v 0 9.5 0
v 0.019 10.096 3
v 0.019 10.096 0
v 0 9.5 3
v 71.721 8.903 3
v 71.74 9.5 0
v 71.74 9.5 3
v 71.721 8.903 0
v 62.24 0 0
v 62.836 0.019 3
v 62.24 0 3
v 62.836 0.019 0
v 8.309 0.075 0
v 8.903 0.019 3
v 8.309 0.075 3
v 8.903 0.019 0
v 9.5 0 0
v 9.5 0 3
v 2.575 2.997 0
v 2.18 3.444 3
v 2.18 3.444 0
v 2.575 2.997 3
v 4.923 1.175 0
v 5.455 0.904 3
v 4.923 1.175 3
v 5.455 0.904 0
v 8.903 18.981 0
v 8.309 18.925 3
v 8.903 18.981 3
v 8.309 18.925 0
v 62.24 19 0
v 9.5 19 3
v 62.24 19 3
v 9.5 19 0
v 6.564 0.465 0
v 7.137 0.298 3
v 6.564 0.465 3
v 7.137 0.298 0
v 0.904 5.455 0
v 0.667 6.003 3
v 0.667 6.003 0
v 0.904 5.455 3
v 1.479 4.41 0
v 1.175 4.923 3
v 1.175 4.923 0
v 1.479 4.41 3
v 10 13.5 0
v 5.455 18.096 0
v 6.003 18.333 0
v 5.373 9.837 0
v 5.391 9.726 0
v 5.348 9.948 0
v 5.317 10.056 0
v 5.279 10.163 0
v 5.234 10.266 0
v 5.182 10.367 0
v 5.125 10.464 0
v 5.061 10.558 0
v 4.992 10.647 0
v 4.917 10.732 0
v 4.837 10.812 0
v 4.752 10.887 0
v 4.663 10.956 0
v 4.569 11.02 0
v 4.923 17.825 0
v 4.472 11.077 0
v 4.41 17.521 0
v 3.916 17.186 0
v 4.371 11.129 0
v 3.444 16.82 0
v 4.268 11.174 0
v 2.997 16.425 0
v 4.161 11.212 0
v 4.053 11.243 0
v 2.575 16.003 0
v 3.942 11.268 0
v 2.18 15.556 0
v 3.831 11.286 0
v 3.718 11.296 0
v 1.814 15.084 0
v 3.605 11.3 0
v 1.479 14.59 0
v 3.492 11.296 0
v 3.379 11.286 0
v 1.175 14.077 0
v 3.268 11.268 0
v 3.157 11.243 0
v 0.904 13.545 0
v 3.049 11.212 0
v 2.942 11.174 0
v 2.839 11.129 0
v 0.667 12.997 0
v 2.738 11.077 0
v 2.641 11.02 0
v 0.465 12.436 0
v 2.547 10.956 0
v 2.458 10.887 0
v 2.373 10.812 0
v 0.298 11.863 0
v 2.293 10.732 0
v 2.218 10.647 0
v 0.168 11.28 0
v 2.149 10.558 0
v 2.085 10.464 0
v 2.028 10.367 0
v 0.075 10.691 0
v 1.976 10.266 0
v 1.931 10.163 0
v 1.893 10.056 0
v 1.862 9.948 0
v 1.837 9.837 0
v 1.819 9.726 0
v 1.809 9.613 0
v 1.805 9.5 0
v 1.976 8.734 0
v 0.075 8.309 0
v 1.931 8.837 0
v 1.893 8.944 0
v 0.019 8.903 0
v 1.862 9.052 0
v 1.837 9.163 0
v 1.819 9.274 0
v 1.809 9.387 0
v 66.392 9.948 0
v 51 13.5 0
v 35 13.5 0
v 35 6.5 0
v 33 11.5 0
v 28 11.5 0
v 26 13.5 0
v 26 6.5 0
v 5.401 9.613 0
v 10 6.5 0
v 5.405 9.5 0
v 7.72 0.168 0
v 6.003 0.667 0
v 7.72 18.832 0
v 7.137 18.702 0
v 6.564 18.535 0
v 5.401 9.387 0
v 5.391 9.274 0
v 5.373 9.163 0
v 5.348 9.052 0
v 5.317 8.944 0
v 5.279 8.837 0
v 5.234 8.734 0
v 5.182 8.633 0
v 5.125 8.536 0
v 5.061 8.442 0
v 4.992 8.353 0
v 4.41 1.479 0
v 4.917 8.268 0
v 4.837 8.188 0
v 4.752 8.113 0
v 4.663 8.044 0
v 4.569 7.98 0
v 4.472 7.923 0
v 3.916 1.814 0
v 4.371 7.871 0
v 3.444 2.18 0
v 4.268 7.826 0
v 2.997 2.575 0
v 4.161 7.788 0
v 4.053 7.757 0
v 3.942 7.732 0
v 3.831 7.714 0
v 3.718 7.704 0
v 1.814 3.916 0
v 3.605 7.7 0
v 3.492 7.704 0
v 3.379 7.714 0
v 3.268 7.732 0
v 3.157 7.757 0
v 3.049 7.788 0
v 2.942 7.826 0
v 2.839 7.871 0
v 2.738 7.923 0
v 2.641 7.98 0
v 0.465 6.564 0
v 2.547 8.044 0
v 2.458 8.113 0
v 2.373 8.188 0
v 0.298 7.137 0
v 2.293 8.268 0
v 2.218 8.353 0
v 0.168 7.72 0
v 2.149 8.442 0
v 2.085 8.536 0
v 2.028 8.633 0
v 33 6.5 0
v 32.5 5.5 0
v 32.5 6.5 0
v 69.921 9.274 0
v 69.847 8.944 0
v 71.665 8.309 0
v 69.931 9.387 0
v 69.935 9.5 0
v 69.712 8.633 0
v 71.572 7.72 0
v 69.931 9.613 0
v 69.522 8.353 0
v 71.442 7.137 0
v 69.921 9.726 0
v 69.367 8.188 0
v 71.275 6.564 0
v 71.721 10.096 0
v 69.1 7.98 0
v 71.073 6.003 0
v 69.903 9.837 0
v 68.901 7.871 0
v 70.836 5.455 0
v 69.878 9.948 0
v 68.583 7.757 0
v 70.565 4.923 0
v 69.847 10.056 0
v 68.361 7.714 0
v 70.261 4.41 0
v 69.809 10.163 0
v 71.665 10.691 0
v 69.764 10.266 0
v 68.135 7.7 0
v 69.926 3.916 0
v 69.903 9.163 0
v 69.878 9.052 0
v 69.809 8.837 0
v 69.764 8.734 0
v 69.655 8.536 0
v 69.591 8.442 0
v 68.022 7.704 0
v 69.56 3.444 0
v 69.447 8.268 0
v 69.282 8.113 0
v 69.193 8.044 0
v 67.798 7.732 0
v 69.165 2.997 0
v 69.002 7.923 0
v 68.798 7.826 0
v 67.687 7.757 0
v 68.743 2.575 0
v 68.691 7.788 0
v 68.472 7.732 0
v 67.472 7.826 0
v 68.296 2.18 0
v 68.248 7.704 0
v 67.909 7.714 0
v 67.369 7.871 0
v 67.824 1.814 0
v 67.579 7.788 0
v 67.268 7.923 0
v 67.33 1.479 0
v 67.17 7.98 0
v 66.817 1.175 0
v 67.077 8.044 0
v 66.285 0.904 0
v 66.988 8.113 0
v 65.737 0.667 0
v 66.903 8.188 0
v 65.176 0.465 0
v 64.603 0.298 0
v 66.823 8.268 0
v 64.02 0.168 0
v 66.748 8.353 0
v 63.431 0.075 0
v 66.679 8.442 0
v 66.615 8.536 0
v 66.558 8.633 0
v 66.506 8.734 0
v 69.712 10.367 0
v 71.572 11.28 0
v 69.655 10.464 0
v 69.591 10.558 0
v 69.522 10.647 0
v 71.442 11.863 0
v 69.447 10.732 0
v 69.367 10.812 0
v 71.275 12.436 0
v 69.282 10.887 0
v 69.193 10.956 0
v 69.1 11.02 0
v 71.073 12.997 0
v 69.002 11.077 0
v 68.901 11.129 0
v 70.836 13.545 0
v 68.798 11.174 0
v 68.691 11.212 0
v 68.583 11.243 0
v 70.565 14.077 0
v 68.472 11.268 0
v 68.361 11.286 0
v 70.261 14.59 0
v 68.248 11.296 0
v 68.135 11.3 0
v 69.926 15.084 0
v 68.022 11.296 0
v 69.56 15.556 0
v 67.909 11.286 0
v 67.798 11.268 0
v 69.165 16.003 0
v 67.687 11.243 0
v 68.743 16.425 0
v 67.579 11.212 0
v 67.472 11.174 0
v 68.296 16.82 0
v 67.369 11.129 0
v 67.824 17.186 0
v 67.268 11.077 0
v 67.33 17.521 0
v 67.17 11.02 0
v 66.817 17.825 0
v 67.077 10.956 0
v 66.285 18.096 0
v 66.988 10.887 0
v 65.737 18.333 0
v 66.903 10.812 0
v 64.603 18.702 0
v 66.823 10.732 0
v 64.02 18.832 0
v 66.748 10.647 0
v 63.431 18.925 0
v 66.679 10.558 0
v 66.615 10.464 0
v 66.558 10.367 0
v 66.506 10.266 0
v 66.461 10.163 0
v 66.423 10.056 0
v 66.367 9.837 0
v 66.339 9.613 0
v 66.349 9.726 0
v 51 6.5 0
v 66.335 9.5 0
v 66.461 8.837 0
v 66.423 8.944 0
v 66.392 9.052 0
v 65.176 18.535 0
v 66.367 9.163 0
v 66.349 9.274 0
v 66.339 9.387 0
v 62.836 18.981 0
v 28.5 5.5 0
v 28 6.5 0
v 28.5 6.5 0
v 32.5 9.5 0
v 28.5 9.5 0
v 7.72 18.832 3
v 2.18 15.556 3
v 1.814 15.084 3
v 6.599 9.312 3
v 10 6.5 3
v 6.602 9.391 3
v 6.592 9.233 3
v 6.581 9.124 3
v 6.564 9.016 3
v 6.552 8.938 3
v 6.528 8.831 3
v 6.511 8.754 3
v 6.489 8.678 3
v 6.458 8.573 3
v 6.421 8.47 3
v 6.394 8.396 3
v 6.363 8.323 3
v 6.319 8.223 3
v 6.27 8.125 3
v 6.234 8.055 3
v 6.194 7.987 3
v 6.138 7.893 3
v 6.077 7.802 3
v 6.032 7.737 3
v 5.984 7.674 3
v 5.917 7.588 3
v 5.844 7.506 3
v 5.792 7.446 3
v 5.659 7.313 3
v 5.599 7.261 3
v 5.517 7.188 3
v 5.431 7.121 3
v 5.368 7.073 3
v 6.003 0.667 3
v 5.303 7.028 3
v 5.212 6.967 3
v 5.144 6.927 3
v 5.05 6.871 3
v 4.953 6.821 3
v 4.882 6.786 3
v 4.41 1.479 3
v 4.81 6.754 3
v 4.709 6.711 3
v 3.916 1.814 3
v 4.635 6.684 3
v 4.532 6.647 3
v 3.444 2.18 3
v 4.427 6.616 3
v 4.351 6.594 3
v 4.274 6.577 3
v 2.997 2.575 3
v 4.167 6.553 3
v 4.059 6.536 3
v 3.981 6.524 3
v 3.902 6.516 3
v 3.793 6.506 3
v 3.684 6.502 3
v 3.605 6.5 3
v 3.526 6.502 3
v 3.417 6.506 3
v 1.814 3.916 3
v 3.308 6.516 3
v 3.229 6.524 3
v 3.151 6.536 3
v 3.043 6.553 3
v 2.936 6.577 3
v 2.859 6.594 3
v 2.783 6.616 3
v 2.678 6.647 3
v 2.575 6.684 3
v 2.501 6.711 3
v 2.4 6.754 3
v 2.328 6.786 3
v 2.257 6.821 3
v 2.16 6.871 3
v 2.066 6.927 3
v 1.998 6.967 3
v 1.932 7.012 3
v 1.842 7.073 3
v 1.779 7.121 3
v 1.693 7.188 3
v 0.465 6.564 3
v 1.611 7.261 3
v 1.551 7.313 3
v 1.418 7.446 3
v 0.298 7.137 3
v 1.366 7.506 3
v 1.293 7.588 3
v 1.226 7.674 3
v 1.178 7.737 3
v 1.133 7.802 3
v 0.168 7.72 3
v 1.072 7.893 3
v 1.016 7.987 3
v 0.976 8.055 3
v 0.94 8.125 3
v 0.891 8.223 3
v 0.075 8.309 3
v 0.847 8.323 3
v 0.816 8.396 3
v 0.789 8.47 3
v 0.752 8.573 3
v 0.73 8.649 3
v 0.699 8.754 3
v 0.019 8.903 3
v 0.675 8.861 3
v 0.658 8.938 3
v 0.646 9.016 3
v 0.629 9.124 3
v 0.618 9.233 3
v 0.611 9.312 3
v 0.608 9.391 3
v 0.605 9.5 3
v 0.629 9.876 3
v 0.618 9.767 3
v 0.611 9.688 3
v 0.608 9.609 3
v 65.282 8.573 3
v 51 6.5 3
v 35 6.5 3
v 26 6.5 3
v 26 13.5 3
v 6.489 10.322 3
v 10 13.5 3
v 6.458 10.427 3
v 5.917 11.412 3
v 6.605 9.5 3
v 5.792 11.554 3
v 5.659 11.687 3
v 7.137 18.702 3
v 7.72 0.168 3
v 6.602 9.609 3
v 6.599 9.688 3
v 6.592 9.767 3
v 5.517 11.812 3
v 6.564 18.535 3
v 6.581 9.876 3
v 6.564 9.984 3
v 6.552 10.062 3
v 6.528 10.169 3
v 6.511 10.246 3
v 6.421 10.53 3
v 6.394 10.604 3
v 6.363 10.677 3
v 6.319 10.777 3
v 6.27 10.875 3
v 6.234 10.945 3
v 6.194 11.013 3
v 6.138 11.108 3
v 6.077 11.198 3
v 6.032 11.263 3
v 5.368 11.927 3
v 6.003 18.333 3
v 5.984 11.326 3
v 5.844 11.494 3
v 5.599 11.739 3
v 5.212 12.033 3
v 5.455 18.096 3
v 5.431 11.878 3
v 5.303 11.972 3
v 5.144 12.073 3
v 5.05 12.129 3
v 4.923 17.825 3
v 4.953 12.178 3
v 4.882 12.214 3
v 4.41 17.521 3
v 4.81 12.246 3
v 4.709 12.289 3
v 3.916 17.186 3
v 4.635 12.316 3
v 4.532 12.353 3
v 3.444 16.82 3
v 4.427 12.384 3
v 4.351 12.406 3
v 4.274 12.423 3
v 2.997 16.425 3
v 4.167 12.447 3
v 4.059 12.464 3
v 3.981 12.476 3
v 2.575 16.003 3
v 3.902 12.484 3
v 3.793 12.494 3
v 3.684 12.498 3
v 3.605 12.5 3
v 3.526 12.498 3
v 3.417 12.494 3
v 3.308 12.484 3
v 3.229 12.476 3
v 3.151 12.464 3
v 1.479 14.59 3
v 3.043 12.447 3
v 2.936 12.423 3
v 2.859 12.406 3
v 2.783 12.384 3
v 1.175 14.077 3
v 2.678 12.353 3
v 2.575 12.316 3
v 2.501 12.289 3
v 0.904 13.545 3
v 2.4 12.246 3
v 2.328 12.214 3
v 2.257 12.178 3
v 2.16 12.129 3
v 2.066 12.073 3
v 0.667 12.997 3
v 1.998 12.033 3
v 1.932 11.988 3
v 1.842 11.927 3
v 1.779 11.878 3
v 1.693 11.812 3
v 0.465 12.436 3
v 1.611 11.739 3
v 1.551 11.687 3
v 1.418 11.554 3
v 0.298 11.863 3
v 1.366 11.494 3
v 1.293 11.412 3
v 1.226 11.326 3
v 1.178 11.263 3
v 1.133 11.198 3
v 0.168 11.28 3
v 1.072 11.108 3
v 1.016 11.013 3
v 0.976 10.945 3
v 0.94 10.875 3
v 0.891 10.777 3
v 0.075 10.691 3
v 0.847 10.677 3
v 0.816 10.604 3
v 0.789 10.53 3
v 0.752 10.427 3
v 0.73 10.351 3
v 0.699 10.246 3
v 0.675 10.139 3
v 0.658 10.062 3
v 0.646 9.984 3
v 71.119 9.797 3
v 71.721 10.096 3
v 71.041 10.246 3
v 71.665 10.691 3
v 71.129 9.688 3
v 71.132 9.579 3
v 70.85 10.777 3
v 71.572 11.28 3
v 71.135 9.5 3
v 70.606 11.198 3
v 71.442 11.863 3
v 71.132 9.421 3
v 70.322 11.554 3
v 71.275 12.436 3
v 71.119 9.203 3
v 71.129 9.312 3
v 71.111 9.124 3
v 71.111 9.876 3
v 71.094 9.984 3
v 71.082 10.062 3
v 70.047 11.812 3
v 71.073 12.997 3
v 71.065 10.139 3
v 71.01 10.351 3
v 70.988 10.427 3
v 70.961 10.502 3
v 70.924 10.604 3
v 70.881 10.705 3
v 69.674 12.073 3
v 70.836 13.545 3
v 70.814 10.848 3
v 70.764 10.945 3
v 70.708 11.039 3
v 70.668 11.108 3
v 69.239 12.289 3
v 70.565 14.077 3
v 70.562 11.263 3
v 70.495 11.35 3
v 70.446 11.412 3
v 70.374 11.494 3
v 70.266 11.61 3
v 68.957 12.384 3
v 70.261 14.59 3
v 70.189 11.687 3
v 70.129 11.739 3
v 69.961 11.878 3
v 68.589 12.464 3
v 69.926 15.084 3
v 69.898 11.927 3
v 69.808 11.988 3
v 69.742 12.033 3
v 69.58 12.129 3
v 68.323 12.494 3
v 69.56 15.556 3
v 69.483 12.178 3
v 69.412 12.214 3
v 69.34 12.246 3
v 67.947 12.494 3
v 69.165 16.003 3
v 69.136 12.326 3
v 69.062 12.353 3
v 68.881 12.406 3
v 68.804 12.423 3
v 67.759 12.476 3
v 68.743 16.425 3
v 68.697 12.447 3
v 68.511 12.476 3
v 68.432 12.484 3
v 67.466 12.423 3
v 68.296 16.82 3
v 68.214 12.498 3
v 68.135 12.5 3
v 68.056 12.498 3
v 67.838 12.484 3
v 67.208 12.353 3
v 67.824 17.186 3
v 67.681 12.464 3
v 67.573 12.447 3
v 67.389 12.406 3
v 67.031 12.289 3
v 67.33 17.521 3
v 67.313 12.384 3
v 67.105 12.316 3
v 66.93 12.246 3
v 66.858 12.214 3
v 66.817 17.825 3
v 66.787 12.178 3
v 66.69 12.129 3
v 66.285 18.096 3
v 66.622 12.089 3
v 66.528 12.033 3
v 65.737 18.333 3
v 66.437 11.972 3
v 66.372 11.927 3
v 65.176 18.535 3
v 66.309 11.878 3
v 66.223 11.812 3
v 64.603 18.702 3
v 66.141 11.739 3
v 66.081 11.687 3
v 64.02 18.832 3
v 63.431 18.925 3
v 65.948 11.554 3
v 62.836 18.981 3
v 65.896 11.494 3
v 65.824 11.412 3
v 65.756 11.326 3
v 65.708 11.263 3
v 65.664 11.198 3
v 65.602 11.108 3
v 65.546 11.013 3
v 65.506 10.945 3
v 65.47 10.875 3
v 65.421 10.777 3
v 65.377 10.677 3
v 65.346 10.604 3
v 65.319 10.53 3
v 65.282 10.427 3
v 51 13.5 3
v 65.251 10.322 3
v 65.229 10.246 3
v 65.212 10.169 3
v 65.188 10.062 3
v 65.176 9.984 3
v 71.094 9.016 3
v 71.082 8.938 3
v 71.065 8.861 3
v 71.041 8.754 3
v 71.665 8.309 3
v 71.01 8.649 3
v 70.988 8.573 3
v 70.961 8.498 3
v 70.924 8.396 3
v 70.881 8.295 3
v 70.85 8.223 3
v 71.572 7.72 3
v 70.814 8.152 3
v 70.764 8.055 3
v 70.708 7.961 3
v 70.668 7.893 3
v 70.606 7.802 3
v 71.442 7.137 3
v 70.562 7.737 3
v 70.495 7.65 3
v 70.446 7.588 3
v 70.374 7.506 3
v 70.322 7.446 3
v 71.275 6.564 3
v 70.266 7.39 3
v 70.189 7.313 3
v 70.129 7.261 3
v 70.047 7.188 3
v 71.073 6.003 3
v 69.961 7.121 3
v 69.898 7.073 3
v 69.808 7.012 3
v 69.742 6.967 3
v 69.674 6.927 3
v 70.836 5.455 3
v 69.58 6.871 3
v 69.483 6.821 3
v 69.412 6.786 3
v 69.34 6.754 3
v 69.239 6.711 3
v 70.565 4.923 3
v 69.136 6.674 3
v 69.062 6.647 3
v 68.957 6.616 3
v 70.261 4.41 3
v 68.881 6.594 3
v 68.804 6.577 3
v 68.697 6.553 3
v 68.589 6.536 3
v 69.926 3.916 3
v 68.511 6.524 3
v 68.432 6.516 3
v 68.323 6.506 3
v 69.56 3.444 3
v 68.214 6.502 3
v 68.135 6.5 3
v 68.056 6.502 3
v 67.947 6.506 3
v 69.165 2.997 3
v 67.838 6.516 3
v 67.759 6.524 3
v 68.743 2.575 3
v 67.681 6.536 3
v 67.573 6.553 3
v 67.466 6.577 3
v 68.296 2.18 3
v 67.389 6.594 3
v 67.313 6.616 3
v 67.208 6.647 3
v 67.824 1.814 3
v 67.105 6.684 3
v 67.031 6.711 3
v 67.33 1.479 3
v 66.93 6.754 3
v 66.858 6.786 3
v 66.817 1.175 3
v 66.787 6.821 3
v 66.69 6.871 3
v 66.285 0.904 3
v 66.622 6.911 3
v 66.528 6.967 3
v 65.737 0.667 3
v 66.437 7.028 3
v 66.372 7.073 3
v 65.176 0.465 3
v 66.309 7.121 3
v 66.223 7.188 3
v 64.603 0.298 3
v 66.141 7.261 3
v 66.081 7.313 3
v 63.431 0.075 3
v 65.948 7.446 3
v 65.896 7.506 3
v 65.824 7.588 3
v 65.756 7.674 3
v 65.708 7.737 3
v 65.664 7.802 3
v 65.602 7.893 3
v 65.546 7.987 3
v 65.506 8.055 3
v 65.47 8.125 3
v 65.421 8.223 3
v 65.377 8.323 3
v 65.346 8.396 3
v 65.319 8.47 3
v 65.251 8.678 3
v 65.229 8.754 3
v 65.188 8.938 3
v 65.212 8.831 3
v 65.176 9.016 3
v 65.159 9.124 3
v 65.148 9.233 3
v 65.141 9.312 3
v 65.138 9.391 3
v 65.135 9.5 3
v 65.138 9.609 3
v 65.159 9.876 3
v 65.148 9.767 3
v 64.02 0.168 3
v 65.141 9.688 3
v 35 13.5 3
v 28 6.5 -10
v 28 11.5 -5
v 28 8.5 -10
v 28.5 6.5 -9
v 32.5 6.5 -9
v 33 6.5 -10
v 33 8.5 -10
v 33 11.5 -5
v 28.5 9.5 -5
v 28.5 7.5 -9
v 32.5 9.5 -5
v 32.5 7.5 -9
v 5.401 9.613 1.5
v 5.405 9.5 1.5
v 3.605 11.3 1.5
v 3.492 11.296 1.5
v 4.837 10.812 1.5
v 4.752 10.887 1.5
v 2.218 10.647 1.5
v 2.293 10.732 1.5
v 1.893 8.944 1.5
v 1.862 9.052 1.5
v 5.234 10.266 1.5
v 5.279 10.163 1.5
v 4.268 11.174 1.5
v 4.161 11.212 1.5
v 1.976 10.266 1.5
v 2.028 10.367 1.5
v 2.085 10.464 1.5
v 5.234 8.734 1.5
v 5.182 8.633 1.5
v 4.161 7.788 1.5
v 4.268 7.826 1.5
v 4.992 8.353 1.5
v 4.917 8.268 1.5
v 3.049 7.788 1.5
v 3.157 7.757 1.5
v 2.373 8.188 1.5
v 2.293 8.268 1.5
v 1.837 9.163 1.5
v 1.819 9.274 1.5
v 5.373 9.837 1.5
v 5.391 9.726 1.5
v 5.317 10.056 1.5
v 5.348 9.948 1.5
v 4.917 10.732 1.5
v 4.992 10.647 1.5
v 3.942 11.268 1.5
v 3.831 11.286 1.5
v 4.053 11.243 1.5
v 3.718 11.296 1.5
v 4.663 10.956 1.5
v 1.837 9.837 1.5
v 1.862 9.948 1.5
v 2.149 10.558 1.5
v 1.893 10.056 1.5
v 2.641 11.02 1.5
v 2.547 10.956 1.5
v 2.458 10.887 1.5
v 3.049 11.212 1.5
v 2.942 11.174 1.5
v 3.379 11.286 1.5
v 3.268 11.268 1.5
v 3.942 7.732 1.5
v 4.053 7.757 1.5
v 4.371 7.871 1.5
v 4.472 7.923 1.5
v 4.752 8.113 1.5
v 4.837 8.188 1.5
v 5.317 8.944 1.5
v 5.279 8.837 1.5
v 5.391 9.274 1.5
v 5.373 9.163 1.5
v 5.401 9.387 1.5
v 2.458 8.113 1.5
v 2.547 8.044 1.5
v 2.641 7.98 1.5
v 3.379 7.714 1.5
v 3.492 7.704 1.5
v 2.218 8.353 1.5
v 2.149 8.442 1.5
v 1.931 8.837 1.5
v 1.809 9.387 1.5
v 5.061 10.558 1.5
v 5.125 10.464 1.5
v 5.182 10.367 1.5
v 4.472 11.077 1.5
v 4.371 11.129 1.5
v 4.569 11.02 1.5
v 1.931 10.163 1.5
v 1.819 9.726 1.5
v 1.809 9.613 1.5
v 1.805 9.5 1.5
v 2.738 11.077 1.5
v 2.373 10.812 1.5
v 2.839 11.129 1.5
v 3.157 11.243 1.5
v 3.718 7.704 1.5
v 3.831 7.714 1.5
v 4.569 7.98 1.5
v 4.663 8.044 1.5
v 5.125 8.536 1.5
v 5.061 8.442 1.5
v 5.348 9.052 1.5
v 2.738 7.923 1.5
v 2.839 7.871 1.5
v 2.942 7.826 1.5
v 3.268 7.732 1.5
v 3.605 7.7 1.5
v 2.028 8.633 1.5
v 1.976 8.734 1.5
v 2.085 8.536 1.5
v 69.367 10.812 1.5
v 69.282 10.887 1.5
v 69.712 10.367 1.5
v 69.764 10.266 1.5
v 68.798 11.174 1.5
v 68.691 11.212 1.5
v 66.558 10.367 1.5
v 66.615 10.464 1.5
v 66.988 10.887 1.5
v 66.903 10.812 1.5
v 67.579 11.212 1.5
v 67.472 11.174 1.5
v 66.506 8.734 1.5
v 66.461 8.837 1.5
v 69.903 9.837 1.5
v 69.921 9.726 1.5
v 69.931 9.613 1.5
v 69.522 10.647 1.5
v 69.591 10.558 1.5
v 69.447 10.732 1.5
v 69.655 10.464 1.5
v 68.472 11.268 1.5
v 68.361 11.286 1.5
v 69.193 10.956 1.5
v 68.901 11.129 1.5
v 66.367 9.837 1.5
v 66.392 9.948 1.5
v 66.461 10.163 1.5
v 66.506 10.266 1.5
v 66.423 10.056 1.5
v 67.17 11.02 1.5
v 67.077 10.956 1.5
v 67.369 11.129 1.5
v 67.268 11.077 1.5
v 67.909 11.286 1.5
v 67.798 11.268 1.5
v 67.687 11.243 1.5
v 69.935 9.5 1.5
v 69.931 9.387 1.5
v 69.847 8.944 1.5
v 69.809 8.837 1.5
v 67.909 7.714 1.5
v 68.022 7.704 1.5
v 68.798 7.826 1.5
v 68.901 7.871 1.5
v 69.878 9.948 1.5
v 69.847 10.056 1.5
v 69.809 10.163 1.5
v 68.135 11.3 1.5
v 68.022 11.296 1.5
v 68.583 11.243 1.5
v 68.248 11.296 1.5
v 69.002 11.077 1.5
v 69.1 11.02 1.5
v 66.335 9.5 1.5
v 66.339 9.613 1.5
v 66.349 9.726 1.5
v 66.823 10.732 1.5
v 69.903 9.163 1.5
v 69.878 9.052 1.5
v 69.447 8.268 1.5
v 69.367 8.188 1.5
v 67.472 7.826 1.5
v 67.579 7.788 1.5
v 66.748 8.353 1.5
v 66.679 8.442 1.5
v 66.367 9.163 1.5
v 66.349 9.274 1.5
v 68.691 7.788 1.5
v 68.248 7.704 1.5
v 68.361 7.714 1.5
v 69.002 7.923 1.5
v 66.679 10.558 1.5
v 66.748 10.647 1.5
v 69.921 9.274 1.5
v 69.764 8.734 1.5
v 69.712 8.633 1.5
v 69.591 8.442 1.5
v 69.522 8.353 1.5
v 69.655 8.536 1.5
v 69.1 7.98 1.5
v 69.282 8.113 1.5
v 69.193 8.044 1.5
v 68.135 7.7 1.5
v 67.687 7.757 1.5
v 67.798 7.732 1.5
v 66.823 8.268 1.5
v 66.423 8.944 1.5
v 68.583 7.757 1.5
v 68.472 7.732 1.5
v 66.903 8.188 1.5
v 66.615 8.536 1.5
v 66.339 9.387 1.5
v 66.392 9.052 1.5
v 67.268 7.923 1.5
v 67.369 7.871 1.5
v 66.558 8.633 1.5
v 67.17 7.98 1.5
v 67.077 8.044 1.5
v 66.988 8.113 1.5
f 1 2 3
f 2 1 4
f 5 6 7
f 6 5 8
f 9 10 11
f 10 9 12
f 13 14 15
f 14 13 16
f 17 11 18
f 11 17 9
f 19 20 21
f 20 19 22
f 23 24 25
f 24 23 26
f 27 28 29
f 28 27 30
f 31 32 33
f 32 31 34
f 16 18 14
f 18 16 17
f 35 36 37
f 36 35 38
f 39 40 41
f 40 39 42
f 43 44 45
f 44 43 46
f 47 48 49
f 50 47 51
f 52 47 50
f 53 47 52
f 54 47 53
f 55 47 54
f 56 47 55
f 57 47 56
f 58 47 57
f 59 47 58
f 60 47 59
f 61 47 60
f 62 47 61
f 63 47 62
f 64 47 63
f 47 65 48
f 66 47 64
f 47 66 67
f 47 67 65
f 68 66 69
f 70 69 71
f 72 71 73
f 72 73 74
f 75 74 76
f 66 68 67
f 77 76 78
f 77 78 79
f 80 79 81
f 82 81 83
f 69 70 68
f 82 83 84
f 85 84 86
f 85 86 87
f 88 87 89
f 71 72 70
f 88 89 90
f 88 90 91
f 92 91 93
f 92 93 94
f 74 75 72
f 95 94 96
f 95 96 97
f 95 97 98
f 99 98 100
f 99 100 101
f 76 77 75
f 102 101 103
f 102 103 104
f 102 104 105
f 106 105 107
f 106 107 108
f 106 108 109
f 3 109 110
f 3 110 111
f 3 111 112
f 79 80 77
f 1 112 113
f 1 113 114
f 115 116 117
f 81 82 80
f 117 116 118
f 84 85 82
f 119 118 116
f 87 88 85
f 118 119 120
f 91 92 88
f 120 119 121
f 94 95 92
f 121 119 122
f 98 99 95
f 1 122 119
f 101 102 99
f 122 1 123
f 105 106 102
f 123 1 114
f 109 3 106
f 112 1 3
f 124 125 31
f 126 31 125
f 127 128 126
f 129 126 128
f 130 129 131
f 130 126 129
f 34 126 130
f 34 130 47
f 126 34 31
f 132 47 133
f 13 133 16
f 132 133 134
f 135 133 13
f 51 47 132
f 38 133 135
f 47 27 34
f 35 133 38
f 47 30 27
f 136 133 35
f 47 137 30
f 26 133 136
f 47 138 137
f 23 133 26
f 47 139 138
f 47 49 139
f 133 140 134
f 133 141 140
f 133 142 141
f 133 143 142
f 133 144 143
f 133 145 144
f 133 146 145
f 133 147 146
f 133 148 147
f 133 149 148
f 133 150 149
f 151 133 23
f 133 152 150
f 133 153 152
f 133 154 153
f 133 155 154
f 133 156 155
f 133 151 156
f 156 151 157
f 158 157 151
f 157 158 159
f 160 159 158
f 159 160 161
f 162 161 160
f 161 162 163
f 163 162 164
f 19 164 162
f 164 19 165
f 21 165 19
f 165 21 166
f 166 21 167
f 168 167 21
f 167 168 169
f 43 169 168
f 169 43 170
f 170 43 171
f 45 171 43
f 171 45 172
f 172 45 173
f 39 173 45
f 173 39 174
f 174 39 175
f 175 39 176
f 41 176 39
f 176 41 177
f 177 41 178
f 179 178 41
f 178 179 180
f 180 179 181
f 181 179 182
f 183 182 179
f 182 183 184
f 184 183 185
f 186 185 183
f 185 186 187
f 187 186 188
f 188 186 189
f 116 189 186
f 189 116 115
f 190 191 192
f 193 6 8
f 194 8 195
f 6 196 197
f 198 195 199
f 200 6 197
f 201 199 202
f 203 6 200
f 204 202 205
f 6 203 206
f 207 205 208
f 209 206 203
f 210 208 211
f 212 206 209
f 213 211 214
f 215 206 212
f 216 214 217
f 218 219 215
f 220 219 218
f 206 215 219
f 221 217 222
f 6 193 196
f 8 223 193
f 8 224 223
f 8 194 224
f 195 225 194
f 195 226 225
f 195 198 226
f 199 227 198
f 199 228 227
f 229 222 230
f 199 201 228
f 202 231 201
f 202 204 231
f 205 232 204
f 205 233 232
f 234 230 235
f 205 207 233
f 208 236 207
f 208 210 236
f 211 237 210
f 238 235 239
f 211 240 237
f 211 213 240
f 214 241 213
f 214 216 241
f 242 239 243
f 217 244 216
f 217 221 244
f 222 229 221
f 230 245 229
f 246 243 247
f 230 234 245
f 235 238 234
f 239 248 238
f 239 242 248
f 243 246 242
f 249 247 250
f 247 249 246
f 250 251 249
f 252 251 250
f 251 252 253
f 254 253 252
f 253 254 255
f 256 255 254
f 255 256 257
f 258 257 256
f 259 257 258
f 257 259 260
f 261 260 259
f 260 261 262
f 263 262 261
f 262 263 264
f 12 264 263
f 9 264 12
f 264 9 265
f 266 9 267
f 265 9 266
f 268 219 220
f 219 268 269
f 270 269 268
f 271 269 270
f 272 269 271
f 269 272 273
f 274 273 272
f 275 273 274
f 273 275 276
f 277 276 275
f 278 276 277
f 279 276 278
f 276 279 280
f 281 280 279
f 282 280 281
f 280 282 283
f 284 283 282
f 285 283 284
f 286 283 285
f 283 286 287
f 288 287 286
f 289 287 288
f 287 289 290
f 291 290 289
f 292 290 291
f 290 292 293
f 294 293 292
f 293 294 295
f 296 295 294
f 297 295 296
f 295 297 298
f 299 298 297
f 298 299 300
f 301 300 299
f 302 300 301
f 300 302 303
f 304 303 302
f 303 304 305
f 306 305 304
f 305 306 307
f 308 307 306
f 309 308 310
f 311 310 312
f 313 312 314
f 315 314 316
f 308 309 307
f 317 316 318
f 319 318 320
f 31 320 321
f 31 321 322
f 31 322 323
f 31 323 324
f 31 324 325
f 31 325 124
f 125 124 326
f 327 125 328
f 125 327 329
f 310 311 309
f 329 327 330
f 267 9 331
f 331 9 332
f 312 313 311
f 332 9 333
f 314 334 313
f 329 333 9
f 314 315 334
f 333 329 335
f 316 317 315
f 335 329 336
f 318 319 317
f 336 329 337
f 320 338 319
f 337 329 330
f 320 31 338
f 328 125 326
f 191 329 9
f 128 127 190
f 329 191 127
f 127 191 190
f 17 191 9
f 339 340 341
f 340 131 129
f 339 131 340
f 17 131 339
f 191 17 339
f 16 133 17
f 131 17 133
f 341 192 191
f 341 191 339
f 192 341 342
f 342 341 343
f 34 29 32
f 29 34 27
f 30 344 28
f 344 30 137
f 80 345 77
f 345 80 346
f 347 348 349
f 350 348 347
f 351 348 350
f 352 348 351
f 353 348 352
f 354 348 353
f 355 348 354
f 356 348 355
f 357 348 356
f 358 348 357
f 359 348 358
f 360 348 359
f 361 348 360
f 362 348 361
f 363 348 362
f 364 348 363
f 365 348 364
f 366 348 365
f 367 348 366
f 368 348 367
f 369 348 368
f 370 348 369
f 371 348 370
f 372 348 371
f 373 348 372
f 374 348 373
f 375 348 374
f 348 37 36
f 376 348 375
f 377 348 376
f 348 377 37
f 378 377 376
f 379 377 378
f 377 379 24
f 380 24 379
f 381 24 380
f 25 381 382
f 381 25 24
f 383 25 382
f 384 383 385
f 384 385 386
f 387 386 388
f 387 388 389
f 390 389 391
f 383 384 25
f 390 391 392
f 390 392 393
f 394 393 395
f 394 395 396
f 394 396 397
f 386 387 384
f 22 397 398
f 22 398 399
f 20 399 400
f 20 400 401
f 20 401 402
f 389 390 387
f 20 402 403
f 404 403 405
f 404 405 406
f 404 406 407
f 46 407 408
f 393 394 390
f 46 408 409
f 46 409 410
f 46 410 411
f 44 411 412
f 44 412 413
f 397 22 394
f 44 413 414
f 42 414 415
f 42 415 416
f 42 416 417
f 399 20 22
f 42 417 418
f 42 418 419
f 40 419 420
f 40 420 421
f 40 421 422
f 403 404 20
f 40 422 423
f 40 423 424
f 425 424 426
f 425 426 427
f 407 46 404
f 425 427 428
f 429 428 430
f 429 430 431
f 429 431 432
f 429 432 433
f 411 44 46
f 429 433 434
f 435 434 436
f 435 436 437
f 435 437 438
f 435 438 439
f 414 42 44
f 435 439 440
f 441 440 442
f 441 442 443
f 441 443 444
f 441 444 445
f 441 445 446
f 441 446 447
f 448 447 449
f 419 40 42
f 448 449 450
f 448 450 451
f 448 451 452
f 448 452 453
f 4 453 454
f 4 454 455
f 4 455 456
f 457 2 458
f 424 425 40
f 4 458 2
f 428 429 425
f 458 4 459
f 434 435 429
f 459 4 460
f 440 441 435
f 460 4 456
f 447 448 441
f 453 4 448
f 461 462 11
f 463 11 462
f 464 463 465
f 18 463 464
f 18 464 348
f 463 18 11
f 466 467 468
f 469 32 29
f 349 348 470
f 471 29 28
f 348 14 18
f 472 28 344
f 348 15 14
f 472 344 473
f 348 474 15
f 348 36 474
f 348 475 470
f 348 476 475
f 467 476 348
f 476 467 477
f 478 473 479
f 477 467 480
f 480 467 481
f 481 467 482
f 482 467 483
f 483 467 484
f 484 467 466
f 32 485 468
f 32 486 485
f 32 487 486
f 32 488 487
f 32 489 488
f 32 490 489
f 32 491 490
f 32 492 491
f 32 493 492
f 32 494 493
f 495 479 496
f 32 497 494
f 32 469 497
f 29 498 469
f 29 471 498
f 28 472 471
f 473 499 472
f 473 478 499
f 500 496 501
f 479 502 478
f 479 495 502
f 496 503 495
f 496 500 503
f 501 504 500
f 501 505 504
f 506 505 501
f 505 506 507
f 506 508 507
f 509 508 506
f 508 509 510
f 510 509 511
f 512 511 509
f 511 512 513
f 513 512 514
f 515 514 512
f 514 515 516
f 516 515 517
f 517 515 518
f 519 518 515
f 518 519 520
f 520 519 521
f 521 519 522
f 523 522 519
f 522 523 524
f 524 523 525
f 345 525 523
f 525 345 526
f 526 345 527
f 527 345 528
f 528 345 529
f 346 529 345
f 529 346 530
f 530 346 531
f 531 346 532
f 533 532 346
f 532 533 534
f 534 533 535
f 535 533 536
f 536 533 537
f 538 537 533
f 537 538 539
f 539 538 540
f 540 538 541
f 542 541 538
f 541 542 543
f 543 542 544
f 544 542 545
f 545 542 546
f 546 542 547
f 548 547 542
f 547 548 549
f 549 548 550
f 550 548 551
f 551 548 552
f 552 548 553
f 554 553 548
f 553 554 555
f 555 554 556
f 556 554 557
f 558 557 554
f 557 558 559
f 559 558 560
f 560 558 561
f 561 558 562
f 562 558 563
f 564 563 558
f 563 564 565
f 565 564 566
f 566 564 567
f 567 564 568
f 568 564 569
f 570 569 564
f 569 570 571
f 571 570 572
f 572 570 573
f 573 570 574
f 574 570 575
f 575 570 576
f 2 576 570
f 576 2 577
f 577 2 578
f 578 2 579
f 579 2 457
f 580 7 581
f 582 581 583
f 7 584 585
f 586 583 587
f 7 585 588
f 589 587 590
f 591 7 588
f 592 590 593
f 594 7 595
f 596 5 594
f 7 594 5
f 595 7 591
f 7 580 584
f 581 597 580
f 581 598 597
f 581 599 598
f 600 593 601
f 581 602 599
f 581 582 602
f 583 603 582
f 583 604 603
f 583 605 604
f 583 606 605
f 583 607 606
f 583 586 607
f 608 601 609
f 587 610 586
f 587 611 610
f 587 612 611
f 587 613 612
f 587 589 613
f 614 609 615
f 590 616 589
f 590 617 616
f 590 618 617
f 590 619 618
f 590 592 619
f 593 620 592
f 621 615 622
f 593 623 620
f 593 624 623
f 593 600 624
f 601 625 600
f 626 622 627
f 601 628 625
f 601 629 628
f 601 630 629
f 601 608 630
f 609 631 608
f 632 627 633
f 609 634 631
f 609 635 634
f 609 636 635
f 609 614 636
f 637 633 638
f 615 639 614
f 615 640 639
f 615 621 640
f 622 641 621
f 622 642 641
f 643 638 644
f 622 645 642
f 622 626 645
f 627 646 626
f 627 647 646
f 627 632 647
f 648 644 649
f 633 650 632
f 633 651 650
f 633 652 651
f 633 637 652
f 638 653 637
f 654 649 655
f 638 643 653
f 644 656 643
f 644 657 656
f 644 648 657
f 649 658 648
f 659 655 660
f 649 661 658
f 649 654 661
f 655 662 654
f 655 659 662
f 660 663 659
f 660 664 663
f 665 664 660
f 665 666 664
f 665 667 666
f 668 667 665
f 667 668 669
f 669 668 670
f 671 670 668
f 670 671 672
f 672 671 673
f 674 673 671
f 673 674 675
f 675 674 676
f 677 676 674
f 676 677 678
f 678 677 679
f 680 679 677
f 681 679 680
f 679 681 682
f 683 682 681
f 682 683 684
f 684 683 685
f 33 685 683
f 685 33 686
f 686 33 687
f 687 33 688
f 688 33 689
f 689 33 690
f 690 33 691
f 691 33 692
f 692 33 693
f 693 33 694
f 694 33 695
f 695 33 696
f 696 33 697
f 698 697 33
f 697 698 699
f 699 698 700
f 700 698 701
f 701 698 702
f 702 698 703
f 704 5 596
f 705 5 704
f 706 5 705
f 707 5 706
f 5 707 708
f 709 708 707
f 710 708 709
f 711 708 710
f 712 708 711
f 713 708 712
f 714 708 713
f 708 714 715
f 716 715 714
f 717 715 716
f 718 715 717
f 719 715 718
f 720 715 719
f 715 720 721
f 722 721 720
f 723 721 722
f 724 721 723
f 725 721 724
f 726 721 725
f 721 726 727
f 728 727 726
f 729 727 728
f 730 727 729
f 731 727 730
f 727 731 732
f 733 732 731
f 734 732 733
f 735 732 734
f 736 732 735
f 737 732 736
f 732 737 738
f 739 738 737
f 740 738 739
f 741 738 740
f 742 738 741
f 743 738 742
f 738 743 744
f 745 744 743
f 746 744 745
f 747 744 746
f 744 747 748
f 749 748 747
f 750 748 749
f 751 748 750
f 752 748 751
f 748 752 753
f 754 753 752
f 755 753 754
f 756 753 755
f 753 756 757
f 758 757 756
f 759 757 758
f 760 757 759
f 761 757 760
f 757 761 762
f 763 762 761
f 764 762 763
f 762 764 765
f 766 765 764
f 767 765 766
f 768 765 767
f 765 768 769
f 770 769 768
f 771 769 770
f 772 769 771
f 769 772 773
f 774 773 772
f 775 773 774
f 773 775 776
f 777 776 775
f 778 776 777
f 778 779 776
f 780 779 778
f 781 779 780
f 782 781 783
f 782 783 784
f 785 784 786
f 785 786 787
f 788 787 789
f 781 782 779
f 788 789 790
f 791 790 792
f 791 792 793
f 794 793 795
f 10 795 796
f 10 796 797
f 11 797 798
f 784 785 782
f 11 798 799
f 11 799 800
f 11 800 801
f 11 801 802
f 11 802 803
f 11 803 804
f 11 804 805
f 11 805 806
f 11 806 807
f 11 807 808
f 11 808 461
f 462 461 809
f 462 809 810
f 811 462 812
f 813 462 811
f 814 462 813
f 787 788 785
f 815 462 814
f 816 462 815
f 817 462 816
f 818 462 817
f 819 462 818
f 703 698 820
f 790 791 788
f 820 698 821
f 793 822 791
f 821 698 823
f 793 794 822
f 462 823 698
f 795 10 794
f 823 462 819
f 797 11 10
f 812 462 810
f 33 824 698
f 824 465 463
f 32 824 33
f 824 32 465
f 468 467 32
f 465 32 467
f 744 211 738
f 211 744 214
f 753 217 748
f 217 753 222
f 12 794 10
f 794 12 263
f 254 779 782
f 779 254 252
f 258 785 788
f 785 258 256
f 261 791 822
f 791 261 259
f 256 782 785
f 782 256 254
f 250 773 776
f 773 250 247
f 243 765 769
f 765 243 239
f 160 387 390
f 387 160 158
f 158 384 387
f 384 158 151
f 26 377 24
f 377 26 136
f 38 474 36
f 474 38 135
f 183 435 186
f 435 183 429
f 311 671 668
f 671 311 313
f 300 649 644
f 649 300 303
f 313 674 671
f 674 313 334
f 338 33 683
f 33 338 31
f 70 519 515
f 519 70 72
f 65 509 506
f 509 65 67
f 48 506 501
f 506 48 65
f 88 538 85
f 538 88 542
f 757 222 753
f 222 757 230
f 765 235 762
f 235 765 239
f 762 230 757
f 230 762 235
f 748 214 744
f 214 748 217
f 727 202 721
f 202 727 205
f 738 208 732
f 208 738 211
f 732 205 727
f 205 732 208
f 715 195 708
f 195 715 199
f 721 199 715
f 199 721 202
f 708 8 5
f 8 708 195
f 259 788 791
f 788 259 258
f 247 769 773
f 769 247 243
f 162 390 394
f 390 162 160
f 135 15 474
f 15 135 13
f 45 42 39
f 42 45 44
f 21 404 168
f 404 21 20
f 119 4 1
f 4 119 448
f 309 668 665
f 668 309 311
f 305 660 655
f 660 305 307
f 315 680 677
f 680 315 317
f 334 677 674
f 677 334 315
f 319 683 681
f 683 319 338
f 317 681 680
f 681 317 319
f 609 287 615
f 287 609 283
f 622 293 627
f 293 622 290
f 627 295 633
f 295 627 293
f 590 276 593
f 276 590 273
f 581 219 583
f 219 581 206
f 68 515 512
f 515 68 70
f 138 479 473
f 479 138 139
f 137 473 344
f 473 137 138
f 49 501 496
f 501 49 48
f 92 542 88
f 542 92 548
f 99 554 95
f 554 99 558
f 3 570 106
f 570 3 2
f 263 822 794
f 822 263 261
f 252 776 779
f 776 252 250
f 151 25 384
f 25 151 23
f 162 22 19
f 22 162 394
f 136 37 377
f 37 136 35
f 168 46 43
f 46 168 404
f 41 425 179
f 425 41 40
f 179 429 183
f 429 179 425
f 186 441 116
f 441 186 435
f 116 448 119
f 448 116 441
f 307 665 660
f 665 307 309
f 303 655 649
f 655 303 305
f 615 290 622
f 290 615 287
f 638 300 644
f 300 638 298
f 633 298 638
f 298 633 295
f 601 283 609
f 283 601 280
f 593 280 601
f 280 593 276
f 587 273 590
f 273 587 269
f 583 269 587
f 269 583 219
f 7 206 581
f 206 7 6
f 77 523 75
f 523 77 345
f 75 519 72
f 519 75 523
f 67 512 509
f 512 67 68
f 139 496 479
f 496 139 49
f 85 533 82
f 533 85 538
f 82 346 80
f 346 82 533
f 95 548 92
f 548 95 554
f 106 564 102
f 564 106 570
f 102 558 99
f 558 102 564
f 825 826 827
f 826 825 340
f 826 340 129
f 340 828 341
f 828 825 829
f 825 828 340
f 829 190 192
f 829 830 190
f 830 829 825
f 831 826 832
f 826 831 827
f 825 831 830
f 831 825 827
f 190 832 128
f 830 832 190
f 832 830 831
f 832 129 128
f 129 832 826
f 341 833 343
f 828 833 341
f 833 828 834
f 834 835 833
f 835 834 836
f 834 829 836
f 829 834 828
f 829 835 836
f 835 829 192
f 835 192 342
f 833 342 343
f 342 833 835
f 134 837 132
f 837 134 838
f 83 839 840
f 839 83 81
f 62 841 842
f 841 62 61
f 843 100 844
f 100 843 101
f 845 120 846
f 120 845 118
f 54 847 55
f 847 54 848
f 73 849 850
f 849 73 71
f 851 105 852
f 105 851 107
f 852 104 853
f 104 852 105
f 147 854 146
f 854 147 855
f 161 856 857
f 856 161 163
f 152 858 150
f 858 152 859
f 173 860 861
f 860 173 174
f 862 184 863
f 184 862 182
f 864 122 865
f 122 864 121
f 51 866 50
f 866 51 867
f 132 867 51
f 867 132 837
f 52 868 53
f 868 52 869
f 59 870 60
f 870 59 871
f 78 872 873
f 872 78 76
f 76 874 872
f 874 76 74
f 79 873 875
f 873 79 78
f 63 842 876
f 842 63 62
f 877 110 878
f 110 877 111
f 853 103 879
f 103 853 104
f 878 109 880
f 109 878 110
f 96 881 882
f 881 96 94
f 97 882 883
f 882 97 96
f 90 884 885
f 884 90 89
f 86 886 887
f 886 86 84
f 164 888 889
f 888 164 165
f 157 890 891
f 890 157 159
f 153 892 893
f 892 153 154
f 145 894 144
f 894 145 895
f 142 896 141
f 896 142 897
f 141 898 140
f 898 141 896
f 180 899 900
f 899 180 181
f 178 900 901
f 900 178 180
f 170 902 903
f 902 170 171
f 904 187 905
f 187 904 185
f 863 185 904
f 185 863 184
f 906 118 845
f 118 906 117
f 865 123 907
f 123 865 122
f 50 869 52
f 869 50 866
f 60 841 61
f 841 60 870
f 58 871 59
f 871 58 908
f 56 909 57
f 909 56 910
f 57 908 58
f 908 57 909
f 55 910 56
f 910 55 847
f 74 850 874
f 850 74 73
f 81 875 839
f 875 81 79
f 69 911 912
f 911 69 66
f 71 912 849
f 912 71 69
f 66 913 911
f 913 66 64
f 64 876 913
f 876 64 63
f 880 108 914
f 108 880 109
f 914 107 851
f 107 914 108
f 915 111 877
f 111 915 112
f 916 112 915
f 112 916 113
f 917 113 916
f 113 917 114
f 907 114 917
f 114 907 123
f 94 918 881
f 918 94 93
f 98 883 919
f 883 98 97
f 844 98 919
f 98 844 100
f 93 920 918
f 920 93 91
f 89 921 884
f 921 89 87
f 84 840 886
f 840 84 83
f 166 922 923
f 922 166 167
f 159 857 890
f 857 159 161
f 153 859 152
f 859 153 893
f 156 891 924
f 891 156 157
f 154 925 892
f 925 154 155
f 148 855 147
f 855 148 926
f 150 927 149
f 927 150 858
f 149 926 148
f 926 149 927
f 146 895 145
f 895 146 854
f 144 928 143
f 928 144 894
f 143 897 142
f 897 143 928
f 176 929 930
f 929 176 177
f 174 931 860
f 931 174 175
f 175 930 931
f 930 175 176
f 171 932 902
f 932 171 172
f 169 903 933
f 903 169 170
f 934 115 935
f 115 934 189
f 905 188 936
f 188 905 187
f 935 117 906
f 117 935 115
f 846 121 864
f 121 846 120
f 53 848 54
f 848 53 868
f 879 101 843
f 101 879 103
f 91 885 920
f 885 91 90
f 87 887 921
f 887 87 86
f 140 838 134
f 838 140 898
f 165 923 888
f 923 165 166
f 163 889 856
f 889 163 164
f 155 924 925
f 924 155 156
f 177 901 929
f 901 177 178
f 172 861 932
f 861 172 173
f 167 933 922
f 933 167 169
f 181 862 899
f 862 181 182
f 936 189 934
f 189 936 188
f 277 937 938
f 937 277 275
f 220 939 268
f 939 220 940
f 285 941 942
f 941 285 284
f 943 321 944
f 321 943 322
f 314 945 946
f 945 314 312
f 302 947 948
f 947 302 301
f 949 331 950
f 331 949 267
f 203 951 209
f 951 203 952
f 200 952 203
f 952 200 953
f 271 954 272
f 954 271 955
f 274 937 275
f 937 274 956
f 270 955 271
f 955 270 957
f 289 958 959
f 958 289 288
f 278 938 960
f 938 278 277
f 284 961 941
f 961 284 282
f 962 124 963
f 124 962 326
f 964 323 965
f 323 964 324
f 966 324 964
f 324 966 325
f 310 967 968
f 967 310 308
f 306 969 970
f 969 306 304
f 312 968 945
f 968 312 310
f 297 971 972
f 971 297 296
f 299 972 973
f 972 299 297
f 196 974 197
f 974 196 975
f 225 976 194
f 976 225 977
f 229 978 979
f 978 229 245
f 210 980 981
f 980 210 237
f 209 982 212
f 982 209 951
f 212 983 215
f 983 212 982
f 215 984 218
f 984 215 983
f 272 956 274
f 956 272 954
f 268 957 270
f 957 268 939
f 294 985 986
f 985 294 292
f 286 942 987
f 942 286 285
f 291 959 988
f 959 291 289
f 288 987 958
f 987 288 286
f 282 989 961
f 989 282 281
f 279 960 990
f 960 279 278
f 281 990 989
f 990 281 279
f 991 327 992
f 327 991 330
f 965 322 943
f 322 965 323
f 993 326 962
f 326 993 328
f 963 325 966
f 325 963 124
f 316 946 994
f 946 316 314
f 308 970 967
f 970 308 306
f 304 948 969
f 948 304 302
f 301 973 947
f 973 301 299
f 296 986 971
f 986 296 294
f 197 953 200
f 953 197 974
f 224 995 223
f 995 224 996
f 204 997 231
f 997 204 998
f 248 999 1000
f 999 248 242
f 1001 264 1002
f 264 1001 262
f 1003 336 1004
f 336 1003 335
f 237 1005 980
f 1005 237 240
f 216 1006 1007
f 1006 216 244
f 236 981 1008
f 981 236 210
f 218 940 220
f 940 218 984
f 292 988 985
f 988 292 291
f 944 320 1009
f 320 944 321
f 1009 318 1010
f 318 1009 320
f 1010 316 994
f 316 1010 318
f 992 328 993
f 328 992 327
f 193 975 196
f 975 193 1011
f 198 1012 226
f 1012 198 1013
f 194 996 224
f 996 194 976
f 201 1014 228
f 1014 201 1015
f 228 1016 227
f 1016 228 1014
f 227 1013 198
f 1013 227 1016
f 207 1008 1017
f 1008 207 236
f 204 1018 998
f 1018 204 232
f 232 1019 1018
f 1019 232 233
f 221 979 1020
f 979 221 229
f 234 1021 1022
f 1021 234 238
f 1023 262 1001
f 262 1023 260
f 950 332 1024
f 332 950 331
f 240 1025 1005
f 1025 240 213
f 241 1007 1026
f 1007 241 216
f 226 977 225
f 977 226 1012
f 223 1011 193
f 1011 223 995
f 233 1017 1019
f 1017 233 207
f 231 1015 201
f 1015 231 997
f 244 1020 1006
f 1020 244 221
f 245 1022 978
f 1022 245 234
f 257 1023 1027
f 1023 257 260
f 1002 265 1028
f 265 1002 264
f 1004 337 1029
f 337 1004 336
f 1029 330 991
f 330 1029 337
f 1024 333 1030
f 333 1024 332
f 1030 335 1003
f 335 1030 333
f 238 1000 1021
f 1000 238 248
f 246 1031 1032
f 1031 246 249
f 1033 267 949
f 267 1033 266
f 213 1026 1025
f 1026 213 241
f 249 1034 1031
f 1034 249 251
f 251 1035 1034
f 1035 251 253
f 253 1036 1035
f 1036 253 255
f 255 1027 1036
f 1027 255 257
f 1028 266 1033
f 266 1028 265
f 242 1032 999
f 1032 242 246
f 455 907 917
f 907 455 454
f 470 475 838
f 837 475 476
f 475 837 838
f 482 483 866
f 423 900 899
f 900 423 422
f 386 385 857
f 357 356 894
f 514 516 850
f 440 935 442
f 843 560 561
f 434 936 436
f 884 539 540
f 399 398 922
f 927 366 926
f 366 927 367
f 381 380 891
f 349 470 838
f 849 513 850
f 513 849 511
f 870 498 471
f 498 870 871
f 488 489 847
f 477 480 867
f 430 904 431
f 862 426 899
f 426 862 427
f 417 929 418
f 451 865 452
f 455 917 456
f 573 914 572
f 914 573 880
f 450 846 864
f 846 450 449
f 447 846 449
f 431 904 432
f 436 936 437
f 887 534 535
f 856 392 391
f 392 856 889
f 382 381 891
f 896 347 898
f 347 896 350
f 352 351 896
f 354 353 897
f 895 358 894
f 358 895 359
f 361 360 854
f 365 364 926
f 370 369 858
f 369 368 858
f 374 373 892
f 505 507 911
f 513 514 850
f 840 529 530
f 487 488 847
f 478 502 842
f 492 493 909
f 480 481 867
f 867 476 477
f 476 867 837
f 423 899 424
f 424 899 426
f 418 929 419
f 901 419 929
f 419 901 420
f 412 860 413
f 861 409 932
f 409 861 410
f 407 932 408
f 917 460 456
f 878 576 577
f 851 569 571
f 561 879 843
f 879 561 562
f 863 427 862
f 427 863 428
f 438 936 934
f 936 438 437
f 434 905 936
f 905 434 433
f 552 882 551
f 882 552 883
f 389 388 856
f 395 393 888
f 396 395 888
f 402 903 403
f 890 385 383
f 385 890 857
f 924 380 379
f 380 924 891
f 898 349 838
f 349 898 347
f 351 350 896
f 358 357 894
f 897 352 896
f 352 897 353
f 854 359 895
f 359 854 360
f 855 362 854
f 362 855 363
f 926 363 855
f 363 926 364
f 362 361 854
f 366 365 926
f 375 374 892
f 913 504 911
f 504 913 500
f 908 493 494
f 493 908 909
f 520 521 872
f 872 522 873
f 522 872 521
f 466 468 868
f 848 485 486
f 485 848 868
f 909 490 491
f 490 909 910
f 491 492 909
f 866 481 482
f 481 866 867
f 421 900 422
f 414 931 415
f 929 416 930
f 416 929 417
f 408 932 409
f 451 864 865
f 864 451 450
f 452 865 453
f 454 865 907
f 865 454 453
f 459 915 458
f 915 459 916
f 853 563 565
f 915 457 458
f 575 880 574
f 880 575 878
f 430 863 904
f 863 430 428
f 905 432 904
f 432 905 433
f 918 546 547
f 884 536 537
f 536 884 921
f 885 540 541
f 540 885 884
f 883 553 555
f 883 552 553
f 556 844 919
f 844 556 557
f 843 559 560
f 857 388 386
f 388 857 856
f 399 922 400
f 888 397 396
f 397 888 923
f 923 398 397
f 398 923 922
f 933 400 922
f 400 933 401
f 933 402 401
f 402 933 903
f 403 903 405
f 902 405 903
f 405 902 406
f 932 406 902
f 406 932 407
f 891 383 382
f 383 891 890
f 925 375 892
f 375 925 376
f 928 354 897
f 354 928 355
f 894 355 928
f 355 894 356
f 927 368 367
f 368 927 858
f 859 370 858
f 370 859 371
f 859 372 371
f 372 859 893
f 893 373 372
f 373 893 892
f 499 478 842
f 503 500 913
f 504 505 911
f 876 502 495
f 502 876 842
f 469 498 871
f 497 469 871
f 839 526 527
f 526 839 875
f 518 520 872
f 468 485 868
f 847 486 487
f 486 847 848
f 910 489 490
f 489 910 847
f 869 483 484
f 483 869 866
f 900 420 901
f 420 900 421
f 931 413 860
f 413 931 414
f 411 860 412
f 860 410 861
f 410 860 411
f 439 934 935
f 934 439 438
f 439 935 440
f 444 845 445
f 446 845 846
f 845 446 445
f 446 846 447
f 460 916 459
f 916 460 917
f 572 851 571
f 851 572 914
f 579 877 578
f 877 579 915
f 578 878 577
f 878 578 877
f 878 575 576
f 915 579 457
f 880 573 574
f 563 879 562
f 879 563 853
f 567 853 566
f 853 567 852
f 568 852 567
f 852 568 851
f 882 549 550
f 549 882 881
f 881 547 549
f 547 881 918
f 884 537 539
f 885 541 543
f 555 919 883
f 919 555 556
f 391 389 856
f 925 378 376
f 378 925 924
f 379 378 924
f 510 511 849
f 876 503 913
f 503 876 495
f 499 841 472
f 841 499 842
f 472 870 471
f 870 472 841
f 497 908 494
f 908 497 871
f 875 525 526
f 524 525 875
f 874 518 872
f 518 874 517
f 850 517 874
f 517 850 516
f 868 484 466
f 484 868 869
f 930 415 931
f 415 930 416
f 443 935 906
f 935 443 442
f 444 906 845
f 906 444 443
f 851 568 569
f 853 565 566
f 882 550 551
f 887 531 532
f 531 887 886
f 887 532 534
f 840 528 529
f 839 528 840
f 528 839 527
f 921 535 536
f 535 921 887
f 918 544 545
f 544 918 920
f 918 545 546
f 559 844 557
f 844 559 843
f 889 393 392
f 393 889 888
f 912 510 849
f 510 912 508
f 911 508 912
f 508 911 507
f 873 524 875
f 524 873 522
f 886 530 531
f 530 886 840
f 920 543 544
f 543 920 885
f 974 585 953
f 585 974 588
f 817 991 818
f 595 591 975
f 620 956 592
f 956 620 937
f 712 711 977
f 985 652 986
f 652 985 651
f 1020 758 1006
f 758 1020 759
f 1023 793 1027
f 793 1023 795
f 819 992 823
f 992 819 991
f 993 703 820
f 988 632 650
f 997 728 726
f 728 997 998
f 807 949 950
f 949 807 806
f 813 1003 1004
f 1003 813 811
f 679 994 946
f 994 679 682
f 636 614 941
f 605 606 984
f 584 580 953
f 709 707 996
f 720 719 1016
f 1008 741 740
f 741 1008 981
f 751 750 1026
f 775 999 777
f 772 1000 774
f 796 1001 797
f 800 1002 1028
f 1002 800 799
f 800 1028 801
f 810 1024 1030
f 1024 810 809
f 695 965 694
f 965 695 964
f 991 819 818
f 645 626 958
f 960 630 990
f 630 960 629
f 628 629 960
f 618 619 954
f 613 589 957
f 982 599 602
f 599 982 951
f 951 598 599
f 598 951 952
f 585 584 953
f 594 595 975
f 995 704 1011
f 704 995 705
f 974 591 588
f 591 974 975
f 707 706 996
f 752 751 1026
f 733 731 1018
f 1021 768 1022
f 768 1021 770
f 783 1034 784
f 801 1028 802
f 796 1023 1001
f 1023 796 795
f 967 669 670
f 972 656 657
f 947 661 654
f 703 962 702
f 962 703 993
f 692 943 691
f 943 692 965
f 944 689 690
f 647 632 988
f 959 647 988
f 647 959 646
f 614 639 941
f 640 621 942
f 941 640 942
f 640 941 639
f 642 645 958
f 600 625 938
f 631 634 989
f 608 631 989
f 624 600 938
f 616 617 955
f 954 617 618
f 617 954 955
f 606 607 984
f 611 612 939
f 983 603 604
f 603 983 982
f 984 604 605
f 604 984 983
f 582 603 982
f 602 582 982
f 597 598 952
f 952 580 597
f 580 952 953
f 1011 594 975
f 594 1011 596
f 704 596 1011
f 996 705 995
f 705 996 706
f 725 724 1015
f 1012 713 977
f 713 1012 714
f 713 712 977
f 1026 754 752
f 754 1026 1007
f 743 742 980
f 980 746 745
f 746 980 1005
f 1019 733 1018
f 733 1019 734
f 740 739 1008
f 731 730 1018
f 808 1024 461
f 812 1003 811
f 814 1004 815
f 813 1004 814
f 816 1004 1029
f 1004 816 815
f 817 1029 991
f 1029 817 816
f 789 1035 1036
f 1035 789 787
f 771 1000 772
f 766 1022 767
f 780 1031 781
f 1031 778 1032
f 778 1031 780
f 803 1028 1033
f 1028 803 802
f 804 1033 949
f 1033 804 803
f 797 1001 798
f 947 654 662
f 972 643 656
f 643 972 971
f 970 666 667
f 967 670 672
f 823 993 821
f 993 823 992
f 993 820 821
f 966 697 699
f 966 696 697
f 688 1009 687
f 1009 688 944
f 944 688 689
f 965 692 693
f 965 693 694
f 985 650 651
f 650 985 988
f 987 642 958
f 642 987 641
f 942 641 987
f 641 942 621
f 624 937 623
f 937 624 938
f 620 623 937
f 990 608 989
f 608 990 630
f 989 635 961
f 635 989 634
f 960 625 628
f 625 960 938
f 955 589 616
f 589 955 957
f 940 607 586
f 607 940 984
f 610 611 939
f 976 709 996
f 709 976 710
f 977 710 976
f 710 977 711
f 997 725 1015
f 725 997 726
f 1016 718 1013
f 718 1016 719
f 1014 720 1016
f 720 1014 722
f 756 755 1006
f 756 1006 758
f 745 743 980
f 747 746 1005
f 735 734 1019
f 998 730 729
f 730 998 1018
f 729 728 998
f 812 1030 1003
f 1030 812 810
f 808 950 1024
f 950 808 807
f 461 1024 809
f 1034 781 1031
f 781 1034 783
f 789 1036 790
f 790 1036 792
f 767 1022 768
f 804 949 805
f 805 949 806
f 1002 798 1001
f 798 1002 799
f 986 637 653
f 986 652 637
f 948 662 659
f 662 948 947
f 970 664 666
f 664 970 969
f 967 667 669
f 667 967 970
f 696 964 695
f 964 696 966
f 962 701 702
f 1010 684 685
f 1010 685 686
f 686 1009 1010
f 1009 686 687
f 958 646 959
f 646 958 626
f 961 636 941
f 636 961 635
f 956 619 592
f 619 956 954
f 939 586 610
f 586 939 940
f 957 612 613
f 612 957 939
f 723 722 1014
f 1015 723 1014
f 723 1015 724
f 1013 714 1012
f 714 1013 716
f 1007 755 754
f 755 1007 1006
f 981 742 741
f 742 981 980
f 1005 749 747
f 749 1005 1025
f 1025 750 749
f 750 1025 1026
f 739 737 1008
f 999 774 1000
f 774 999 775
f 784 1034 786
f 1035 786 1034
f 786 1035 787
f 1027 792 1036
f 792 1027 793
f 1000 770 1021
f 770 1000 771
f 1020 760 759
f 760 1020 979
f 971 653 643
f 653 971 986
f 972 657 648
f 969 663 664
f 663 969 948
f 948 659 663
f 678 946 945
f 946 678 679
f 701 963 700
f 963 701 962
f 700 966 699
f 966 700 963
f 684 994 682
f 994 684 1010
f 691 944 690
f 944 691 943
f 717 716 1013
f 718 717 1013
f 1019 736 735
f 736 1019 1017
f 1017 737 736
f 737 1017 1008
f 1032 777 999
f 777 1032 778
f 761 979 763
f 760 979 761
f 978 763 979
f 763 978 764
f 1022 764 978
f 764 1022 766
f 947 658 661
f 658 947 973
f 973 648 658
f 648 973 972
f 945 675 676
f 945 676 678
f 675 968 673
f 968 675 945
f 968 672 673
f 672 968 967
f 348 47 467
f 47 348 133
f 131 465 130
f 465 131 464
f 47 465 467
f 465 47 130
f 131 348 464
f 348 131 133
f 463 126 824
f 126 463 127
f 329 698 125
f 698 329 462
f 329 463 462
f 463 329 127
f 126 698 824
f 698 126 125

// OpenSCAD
$fn = 100;

// Edge radius of the hammond 1455B802 case
$r = 9.5;

// Width
$w = 71.74;

// Thickness
$t = 3;

// Distance of screw holes
$d = 64.53;
// Screw radius
$sr = 3.6 / 2;

// Height of PCB top
$ph = 6.5;
// K connector dimension (w x h
$cw = 16;
$ch = 7;

difference()
{
    union()
    {
        // Whole front element
        hull()
        {
            translate([$r, $r, 0]) cylinder($t, $r, $r);
            translate([$w - $r, $r, 0]) cylinder($t, $r, $r);
        }
        // LED
        hull()
        {
            translate([28, $ph, -5]) cube([5, 5, 5], false);
            translate([28, $ph, -10]) cube([5, 2, 5], false);
        }
    }
//    translate([28.5, $ph - 1, -8]) cube([4, 4, 10], false);
    hull()
    {
        translate([28.5, $ph - 1, -5]) cube([4, 4, 5], false);
        translate([28.5, $ph - 1, -9]) cube([4, 2, 5], false);
    }
    
    // Screw holes
    translate([($w / 2) - ($d / 2), $r, -1]) cylinder($t + 2, $sr, $sr);
    translate([($w / 2) + ($d / 2), $r, -1]) cylinder($t + 2, $sr, $sr);
    translate([($w / 2) - ($d / 2), $r, $t - 1.5]) cylinder($t + 2, $sr, $sr + 4);
    translate([($w / 2) + ($d / 2), $r, $t -1.5]) cylinder($t + 2, $sr, $sr + 4);

    // Connector cutouts
    translate([10, $ph, -1]) cube([$cw, $ch, $t + 2], false);
    translate([35, $ph, -1]) cube([$cw, $ch, $t + 2], false);
}
